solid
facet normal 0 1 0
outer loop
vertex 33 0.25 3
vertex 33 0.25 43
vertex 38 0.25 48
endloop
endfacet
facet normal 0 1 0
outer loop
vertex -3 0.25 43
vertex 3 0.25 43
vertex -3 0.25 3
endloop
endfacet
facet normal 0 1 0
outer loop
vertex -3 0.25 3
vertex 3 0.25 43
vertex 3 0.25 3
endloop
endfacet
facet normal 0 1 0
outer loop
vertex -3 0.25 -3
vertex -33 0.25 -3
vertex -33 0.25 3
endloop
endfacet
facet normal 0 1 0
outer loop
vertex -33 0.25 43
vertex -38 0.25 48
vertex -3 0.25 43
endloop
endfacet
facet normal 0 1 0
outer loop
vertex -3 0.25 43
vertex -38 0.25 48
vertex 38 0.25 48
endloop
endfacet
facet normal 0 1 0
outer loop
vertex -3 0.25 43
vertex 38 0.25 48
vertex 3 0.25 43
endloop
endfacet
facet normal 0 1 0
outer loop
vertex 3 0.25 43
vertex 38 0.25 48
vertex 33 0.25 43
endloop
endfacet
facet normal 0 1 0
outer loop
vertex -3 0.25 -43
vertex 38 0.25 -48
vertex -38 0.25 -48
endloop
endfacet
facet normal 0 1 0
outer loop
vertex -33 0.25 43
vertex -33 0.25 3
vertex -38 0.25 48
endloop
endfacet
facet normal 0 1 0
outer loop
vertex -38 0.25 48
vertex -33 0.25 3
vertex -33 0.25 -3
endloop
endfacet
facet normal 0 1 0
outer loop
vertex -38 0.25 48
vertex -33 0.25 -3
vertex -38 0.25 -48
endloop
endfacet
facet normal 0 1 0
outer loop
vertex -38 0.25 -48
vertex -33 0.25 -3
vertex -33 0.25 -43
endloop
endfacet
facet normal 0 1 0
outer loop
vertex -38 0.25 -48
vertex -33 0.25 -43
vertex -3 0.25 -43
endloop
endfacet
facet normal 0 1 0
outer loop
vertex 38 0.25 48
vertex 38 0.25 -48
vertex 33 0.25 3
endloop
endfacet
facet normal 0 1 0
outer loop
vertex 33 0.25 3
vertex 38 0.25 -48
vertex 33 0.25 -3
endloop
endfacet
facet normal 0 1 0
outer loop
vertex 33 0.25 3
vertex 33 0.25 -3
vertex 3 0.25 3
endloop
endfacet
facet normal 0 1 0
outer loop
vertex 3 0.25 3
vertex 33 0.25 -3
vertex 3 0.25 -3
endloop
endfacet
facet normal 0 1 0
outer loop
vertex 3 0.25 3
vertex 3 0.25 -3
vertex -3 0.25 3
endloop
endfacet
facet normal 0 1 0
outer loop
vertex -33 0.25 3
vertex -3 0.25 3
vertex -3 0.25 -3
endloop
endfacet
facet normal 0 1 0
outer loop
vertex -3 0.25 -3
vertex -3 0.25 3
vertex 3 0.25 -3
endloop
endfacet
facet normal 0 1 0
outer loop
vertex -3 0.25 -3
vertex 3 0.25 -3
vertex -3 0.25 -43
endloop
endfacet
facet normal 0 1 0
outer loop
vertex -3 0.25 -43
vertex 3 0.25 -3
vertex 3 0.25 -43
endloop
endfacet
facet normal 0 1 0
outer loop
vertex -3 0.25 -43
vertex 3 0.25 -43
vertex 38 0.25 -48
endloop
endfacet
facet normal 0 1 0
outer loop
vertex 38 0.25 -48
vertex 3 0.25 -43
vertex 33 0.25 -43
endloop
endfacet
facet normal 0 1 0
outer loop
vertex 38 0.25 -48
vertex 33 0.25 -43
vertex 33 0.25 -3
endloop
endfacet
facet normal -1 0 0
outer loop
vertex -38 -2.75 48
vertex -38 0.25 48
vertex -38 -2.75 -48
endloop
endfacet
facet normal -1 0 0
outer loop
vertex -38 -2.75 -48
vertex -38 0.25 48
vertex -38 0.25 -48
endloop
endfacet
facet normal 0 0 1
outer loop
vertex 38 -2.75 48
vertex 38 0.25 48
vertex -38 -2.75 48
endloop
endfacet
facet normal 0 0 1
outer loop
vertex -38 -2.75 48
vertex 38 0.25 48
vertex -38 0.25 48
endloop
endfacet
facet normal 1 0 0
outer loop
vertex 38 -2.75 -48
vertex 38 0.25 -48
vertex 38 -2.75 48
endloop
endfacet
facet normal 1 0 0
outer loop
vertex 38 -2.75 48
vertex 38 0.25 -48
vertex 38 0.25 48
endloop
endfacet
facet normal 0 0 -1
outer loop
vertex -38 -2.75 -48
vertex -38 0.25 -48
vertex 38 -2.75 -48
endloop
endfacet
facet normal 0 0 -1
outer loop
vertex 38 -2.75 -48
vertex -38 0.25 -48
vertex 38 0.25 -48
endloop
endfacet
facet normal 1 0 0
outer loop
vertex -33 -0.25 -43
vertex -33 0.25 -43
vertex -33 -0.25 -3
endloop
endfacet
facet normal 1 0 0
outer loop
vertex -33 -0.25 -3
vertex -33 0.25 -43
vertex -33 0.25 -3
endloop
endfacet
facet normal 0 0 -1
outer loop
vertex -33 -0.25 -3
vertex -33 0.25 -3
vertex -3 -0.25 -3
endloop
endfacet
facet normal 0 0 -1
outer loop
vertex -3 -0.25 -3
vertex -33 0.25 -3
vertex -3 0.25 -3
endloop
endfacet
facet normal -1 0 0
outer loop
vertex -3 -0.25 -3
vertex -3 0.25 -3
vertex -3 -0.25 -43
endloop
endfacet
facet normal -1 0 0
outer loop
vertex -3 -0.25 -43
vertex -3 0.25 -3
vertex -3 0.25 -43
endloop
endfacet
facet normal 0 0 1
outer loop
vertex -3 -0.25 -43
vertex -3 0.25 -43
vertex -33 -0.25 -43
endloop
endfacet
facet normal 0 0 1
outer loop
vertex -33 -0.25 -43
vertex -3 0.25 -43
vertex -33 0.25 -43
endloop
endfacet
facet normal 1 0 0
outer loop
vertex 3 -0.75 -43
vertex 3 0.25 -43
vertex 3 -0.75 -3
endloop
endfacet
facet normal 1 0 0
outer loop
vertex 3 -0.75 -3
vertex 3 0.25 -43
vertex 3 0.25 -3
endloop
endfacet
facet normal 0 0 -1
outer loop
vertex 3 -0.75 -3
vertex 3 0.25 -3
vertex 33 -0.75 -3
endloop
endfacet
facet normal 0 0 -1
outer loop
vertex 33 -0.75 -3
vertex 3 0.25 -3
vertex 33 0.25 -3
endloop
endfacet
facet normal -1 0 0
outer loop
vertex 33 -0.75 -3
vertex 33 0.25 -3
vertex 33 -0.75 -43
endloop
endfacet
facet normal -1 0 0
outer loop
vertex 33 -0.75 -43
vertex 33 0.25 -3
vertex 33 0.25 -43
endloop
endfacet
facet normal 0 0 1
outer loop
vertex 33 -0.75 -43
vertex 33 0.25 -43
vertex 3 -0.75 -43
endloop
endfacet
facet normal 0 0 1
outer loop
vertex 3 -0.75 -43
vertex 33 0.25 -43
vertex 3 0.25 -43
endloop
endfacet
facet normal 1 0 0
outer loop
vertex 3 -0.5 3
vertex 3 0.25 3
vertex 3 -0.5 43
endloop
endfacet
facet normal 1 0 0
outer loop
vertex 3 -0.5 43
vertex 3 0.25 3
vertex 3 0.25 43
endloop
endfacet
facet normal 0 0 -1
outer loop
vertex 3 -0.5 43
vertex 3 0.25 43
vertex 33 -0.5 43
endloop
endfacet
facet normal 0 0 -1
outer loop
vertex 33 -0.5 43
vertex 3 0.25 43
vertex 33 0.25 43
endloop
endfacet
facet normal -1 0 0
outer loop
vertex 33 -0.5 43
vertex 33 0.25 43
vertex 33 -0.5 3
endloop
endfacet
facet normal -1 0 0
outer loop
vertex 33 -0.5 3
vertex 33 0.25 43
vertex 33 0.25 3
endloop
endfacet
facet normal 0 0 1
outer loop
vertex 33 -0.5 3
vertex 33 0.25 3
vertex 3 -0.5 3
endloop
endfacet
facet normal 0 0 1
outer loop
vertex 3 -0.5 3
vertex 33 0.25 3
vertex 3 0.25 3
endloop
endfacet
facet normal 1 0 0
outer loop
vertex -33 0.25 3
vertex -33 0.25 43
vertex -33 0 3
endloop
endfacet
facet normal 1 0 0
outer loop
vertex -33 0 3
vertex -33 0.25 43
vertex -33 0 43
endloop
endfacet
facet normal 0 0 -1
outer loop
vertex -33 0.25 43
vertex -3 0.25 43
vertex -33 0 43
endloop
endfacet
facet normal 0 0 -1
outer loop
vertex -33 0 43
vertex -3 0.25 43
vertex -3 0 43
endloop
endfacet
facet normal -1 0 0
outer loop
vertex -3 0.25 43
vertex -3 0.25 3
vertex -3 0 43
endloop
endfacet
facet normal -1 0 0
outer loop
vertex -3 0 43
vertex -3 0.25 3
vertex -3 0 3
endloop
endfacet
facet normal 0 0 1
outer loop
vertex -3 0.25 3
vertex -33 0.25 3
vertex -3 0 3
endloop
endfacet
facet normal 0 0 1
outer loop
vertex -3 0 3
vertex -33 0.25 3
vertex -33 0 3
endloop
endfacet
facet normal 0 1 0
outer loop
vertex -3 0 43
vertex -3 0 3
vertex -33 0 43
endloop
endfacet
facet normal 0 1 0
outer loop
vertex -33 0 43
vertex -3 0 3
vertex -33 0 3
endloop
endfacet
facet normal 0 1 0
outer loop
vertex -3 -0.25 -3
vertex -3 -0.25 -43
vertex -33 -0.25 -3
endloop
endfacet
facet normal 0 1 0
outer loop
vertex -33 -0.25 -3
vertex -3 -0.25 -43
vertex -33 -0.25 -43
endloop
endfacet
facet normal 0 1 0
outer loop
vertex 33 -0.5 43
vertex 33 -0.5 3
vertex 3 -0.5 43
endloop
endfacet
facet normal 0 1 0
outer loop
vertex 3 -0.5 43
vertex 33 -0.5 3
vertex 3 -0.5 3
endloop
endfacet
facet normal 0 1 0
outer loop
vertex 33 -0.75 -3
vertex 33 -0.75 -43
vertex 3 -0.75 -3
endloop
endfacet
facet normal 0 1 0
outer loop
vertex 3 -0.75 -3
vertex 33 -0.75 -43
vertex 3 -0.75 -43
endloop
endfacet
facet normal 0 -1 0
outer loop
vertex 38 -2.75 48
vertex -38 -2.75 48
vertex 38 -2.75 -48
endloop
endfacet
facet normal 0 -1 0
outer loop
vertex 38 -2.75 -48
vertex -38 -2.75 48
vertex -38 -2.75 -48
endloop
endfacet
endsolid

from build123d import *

# Parameters (mm, degrees)
SKETCH1_W           = 76
SKETCH1_H           = 96
SKETCH1_W_2         = 30
SKETCH1_H_2         = 40
BOSS_EXTRUDE1_DEPTH = 0.25
SKETCH2_W           = 76
SKETCH2_H           = 96
BOSS_EXTRUDE2_DEPTH = 4
SKETCH3_W           = 30
SKETCH3_H           = 40
CUT_EXTRUDE1_DEPTH  = 0.25
SKETCH4_W           = 30
SKETCH4_H           = 40
CUT_EXTRUDE2_DEPTH  = 0.5
SKETCH5_W           = 30
SKETCH5_H           = 40
CUT_EXTRUDE3_DEPTH  = 0.75
SKETCH6_W           = 83.006350466
SKETCH6_H           = 7.589152043
CUT_EXTRUDE4_DEPTH  = 107.75


with BuildPart() as part:
    # Sketch1 → Boss-Extrude1 (new body)
    with BuildSketch(Plane(origin=(0, 0, 0), x_dir=(1, 0, 0), z_dir=(0, 1, 0))):
        Rectangle(SKETCH1_W, SKETCH1_H)
        with Locations((-18, 23)):
            Rectangle(SKETCH1_W_2, SKETCH1_H_2, mode=Mode.SUBTRACT)
        with Locations((18, 23)):
            Rectangle(SKETCH1_W_2, SKETCH1_H_2, mode=Mode.SUBTRACT)
        with Locations((18, -23)):
            Rectangle(SKETCH1_W_2, SKETCH1_H_2, mode=Mode.SUBTRACT)
        with Locations((-18, -23)):
            Rectangle(SKETCH1_W_2, SKETCH1_H_2, mode=Mode.SUBTRACT)
    extrude(amount=BOSS_EXTRUDE1_DEPTH)

    # Sketch2 → Boss-Extrude2 (add)
    with BuildSketch(Plane.XZ):
        Rectangle(SKETCH2_W, SKETCH2_H)
    extrude(amount=BOSS_EXTRUDE2_DEPTH)

    # Sketch3 → Cut-Extrude1 (cut)
    with BuildSketch(Plane(origin=(0, 0, 0), x_dir=(1, 0, 0), z_dir=(0, 1, 0))):
        with Locations((-18, 23)):
            Rectangle(SKETCH3_W, SKETCH3_H)
    extrude(amount=-CUT_EXTRUDE1_DEPTH, mode=Mode.SUBTRACT)

    # Sketch4 → Cut-Extrude2 (cut)
    with BuildSketch(Plane(origin=(0, 0, 0), x_dir=(1, 0, 0), z_dir=(0, 1, 0))):
        with Locations((18, -23)):
            Rectangle(SKETCH4_W, SKETCH4_H)
    extrude(amount=-CUT_EXTRUDE2_DEPTH, mode=Mode.SUBTRACT)

    # Sketch5 → Cut-Extrude3 (cut)
    with BuildSketch(Plane(origin=(0, 0, 0), x_dir=(1, 0, 0), z_dir=(0, 1, 0))):
        with Locations((18, 23)):
            Rectangle(SKETCH5_W, SKETCH5_H)
    extrude(amount=-CUT_EXTRUDE3_DEPTH, mode=Mode.SUBTRACT)

    # Sketch6 → Cut-Extrude4 (cut)
    with BuildSketch(Plane.XY.offset(48)):
        with Locations((-0.355741502, -6.544576022)):
            Rectangle(SKETCH6_W, SKETCH6_H)
    extrude(amount=-CUT_EXTRUDE4_DEPTH, mode=Mode.SUBTRACT)


solid = part.part
